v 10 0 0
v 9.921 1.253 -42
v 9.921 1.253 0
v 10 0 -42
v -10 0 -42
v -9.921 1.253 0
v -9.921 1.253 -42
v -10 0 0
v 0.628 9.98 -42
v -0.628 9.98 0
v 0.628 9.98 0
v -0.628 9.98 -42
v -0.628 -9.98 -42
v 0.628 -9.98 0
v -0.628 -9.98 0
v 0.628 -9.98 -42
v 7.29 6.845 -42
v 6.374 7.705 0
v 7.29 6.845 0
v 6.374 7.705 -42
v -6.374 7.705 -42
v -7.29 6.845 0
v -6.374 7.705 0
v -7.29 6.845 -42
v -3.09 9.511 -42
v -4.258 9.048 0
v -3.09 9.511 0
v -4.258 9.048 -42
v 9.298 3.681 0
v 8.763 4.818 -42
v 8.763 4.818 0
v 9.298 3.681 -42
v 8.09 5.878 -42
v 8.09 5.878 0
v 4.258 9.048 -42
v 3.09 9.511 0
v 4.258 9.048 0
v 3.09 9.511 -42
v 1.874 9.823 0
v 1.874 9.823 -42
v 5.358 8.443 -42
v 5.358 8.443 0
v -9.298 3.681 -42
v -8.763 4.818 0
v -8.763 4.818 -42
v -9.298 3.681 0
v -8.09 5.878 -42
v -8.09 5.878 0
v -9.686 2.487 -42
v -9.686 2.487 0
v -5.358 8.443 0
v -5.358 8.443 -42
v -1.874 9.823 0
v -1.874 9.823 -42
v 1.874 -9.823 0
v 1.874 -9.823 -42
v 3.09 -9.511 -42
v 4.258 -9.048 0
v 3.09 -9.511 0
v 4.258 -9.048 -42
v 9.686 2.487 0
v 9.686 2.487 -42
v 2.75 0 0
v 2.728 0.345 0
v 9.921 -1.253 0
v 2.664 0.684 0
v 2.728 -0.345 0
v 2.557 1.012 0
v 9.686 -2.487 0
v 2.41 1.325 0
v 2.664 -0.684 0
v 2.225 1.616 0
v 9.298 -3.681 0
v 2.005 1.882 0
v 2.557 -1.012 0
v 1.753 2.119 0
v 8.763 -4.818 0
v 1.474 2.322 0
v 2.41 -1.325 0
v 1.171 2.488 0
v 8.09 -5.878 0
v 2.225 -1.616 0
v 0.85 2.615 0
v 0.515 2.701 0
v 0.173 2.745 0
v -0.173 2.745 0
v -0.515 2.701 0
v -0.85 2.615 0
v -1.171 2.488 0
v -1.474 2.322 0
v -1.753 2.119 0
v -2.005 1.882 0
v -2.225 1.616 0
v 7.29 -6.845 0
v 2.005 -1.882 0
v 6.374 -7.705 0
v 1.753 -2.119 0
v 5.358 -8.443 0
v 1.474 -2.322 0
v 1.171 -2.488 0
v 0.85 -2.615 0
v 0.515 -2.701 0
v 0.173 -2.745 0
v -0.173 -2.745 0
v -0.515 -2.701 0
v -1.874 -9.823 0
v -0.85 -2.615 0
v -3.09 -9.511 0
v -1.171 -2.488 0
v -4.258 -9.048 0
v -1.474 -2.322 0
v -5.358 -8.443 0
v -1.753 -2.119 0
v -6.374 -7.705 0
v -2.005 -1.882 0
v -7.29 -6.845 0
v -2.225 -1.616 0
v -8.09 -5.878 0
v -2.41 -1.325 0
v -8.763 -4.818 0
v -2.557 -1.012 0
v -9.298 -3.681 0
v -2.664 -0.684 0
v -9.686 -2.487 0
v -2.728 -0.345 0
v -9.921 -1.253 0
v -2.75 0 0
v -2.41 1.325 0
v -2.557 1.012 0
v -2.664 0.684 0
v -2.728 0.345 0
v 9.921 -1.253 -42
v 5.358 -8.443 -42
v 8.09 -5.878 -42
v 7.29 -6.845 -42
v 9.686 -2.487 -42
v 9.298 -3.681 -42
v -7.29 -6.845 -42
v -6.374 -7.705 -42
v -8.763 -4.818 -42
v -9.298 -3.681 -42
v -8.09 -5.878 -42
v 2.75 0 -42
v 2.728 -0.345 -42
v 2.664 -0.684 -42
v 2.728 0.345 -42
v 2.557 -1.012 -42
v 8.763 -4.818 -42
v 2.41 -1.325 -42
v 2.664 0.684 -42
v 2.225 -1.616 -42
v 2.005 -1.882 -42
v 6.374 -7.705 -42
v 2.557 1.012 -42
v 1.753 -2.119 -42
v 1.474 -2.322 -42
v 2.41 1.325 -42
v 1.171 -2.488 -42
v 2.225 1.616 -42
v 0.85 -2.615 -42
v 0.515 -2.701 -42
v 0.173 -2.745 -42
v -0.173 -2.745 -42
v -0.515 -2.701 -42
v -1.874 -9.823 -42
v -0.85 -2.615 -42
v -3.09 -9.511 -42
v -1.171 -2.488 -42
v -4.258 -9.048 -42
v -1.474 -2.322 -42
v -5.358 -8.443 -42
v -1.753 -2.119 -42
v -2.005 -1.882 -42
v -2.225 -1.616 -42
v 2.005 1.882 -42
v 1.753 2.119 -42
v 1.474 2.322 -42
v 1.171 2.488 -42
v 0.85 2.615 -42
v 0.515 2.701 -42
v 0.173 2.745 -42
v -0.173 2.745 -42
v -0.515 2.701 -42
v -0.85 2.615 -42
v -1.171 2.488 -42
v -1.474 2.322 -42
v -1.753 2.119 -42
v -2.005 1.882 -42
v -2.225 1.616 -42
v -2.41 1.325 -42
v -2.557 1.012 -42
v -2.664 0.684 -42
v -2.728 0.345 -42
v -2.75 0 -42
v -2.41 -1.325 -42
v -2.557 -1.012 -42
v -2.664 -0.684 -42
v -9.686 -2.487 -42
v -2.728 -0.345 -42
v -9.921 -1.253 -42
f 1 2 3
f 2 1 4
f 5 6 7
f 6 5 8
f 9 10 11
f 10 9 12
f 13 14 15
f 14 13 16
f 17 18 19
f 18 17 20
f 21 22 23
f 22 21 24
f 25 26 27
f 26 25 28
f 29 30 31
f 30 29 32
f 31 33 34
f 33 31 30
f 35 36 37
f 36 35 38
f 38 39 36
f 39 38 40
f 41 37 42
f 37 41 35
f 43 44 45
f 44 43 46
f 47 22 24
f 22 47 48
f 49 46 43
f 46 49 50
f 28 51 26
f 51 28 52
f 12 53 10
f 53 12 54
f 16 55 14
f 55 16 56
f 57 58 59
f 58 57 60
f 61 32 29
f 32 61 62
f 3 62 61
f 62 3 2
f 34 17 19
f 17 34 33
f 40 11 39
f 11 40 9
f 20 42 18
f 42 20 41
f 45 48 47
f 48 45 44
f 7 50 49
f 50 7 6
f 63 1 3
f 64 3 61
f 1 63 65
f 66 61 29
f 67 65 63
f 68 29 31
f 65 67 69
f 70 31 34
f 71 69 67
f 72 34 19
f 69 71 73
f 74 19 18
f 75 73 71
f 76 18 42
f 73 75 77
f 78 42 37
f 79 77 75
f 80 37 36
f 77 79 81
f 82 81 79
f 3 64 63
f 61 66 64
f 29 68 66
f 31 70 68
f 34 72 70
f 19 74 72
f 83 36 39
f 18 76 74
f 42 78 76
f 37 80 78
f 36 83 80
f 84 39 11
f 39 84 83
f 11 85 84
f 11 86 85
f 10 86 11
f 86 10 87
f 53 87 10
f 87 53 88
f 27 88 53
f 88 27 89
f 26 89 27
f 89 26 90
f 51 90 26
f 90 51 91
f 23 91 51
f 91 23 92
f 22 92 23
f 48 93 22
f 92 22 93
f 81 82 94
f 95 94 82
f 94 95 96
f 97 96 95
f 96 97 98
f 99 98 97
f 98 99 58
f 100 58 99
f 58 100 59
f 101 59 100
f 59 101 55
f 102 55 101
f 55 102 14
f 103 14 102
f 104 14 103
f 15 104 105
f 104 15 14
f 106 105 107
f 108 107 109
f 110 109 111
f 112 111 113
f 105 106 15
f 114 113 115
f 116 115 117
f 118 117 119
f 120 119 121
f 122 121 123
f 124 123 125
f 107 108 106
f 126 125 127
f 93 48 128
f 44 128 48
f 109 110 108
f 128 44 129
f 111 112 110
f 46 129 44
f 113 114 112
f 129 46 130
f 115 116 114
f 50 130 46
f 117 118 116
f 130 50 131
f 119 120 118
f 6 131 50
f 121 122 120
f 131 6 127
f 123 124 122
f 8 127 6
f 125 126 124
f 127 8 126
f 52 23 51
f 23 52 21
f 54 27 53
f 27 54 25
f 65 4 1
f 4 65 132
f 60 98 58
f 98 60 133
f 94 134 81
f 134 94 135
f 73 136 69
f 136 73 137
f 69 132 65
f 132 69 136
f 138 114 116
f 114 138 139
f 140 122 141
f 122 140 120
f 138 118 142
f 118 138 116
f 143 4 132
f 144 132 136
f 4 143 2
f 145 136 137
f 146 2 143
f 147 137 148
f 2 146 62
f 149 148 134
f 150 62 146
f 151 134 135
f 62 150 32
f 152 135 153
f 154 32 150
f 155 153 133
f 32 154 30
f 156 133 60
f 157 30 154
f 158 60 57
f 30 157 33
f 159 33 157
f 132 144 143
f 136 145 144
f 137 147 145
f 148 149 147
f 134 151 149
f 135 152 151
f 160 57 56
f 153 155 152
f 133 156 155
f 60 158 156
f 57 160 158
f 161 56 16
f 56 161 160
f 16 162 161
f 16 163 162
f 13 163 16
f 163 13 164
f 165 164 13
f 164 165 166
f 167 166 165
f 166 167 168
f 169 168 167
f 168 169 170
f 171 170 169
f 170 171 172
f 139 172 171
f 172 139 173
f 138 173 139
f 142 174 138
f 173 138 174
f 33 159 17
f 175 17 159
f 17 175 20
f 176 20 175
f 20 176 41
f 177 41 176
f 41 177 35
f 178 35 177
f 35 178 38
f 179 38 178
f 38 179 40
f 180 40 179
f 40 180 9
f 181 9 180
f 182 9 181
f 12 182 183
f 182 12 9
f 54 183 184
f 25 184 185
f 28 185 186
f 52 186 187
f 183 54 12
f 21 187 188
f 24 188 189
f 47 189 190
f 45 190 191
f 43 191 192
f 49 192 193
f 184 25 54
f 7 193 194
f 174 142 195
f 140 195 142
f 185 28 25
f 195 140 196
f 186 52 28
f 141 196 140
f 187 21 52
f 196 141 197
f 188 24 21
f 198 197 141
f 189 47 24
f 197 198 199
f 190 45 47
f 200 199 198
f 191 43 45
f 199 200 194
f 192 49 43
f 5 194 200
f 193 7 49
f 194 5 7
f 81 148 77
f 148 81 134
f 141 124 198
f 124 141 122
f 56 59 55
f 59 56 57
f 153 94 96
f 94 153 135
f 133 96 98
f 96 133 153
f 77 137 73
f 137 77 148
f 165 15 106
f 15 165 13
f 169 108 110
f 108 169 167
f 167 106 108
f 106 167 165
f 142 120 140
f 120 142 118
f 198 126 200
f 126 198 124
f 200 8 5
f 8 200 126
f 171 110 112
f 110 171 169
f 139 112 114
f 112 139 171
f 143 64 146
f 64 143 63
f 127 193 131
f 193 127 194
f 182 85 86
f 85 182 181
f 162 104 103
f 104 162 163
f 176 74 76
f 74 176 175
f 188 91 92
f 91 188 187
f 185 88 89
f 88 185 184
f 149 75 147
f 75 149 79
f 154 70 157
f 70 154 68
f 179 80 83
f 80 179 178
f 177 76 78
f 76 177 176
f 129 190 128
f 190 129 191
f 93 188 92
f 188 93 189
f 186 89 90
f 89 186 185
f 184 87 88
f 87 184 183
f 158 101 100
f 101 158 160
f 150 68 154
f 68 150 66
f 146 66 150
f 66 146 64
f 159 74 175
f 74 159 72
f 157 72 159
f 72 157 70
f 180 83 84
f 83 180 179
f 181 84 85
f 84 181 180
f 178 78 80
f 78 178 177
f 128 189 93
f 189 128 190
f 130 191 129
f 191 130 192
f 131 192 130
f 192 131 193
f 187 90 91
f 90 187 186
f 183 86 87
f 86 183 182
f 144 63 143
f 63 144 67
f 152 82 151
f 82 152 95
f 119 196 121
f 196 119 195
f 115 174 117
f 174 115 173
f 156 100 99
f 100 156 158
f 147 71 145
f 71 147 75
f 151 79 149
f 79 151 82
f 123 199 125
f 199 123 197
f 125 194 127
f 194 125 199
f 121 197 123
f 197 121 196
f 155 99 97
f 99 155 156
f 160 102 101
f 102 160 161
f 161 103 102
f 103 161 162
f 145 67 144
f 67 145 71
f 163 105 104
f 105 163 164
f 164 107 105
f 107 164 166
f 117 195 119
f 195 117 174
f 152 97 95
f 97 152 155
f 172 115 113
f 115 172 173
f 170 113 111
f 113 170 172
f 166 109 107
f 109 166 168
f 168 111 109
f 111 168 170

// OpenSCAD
$fn = 50;


difference() {
	union() {
		translate(v = [0, 0, -42.0000000000]) {
			cylinder(h = 42, r = 10.0000000000);
		}
		cylinder(h = 0, r = 13.0000000000);
	}
	union() {
		#translate(v = [0, 0, -42]) {
			cylinder(h = 42, r = 2.7500000000);
		}
	}
}
